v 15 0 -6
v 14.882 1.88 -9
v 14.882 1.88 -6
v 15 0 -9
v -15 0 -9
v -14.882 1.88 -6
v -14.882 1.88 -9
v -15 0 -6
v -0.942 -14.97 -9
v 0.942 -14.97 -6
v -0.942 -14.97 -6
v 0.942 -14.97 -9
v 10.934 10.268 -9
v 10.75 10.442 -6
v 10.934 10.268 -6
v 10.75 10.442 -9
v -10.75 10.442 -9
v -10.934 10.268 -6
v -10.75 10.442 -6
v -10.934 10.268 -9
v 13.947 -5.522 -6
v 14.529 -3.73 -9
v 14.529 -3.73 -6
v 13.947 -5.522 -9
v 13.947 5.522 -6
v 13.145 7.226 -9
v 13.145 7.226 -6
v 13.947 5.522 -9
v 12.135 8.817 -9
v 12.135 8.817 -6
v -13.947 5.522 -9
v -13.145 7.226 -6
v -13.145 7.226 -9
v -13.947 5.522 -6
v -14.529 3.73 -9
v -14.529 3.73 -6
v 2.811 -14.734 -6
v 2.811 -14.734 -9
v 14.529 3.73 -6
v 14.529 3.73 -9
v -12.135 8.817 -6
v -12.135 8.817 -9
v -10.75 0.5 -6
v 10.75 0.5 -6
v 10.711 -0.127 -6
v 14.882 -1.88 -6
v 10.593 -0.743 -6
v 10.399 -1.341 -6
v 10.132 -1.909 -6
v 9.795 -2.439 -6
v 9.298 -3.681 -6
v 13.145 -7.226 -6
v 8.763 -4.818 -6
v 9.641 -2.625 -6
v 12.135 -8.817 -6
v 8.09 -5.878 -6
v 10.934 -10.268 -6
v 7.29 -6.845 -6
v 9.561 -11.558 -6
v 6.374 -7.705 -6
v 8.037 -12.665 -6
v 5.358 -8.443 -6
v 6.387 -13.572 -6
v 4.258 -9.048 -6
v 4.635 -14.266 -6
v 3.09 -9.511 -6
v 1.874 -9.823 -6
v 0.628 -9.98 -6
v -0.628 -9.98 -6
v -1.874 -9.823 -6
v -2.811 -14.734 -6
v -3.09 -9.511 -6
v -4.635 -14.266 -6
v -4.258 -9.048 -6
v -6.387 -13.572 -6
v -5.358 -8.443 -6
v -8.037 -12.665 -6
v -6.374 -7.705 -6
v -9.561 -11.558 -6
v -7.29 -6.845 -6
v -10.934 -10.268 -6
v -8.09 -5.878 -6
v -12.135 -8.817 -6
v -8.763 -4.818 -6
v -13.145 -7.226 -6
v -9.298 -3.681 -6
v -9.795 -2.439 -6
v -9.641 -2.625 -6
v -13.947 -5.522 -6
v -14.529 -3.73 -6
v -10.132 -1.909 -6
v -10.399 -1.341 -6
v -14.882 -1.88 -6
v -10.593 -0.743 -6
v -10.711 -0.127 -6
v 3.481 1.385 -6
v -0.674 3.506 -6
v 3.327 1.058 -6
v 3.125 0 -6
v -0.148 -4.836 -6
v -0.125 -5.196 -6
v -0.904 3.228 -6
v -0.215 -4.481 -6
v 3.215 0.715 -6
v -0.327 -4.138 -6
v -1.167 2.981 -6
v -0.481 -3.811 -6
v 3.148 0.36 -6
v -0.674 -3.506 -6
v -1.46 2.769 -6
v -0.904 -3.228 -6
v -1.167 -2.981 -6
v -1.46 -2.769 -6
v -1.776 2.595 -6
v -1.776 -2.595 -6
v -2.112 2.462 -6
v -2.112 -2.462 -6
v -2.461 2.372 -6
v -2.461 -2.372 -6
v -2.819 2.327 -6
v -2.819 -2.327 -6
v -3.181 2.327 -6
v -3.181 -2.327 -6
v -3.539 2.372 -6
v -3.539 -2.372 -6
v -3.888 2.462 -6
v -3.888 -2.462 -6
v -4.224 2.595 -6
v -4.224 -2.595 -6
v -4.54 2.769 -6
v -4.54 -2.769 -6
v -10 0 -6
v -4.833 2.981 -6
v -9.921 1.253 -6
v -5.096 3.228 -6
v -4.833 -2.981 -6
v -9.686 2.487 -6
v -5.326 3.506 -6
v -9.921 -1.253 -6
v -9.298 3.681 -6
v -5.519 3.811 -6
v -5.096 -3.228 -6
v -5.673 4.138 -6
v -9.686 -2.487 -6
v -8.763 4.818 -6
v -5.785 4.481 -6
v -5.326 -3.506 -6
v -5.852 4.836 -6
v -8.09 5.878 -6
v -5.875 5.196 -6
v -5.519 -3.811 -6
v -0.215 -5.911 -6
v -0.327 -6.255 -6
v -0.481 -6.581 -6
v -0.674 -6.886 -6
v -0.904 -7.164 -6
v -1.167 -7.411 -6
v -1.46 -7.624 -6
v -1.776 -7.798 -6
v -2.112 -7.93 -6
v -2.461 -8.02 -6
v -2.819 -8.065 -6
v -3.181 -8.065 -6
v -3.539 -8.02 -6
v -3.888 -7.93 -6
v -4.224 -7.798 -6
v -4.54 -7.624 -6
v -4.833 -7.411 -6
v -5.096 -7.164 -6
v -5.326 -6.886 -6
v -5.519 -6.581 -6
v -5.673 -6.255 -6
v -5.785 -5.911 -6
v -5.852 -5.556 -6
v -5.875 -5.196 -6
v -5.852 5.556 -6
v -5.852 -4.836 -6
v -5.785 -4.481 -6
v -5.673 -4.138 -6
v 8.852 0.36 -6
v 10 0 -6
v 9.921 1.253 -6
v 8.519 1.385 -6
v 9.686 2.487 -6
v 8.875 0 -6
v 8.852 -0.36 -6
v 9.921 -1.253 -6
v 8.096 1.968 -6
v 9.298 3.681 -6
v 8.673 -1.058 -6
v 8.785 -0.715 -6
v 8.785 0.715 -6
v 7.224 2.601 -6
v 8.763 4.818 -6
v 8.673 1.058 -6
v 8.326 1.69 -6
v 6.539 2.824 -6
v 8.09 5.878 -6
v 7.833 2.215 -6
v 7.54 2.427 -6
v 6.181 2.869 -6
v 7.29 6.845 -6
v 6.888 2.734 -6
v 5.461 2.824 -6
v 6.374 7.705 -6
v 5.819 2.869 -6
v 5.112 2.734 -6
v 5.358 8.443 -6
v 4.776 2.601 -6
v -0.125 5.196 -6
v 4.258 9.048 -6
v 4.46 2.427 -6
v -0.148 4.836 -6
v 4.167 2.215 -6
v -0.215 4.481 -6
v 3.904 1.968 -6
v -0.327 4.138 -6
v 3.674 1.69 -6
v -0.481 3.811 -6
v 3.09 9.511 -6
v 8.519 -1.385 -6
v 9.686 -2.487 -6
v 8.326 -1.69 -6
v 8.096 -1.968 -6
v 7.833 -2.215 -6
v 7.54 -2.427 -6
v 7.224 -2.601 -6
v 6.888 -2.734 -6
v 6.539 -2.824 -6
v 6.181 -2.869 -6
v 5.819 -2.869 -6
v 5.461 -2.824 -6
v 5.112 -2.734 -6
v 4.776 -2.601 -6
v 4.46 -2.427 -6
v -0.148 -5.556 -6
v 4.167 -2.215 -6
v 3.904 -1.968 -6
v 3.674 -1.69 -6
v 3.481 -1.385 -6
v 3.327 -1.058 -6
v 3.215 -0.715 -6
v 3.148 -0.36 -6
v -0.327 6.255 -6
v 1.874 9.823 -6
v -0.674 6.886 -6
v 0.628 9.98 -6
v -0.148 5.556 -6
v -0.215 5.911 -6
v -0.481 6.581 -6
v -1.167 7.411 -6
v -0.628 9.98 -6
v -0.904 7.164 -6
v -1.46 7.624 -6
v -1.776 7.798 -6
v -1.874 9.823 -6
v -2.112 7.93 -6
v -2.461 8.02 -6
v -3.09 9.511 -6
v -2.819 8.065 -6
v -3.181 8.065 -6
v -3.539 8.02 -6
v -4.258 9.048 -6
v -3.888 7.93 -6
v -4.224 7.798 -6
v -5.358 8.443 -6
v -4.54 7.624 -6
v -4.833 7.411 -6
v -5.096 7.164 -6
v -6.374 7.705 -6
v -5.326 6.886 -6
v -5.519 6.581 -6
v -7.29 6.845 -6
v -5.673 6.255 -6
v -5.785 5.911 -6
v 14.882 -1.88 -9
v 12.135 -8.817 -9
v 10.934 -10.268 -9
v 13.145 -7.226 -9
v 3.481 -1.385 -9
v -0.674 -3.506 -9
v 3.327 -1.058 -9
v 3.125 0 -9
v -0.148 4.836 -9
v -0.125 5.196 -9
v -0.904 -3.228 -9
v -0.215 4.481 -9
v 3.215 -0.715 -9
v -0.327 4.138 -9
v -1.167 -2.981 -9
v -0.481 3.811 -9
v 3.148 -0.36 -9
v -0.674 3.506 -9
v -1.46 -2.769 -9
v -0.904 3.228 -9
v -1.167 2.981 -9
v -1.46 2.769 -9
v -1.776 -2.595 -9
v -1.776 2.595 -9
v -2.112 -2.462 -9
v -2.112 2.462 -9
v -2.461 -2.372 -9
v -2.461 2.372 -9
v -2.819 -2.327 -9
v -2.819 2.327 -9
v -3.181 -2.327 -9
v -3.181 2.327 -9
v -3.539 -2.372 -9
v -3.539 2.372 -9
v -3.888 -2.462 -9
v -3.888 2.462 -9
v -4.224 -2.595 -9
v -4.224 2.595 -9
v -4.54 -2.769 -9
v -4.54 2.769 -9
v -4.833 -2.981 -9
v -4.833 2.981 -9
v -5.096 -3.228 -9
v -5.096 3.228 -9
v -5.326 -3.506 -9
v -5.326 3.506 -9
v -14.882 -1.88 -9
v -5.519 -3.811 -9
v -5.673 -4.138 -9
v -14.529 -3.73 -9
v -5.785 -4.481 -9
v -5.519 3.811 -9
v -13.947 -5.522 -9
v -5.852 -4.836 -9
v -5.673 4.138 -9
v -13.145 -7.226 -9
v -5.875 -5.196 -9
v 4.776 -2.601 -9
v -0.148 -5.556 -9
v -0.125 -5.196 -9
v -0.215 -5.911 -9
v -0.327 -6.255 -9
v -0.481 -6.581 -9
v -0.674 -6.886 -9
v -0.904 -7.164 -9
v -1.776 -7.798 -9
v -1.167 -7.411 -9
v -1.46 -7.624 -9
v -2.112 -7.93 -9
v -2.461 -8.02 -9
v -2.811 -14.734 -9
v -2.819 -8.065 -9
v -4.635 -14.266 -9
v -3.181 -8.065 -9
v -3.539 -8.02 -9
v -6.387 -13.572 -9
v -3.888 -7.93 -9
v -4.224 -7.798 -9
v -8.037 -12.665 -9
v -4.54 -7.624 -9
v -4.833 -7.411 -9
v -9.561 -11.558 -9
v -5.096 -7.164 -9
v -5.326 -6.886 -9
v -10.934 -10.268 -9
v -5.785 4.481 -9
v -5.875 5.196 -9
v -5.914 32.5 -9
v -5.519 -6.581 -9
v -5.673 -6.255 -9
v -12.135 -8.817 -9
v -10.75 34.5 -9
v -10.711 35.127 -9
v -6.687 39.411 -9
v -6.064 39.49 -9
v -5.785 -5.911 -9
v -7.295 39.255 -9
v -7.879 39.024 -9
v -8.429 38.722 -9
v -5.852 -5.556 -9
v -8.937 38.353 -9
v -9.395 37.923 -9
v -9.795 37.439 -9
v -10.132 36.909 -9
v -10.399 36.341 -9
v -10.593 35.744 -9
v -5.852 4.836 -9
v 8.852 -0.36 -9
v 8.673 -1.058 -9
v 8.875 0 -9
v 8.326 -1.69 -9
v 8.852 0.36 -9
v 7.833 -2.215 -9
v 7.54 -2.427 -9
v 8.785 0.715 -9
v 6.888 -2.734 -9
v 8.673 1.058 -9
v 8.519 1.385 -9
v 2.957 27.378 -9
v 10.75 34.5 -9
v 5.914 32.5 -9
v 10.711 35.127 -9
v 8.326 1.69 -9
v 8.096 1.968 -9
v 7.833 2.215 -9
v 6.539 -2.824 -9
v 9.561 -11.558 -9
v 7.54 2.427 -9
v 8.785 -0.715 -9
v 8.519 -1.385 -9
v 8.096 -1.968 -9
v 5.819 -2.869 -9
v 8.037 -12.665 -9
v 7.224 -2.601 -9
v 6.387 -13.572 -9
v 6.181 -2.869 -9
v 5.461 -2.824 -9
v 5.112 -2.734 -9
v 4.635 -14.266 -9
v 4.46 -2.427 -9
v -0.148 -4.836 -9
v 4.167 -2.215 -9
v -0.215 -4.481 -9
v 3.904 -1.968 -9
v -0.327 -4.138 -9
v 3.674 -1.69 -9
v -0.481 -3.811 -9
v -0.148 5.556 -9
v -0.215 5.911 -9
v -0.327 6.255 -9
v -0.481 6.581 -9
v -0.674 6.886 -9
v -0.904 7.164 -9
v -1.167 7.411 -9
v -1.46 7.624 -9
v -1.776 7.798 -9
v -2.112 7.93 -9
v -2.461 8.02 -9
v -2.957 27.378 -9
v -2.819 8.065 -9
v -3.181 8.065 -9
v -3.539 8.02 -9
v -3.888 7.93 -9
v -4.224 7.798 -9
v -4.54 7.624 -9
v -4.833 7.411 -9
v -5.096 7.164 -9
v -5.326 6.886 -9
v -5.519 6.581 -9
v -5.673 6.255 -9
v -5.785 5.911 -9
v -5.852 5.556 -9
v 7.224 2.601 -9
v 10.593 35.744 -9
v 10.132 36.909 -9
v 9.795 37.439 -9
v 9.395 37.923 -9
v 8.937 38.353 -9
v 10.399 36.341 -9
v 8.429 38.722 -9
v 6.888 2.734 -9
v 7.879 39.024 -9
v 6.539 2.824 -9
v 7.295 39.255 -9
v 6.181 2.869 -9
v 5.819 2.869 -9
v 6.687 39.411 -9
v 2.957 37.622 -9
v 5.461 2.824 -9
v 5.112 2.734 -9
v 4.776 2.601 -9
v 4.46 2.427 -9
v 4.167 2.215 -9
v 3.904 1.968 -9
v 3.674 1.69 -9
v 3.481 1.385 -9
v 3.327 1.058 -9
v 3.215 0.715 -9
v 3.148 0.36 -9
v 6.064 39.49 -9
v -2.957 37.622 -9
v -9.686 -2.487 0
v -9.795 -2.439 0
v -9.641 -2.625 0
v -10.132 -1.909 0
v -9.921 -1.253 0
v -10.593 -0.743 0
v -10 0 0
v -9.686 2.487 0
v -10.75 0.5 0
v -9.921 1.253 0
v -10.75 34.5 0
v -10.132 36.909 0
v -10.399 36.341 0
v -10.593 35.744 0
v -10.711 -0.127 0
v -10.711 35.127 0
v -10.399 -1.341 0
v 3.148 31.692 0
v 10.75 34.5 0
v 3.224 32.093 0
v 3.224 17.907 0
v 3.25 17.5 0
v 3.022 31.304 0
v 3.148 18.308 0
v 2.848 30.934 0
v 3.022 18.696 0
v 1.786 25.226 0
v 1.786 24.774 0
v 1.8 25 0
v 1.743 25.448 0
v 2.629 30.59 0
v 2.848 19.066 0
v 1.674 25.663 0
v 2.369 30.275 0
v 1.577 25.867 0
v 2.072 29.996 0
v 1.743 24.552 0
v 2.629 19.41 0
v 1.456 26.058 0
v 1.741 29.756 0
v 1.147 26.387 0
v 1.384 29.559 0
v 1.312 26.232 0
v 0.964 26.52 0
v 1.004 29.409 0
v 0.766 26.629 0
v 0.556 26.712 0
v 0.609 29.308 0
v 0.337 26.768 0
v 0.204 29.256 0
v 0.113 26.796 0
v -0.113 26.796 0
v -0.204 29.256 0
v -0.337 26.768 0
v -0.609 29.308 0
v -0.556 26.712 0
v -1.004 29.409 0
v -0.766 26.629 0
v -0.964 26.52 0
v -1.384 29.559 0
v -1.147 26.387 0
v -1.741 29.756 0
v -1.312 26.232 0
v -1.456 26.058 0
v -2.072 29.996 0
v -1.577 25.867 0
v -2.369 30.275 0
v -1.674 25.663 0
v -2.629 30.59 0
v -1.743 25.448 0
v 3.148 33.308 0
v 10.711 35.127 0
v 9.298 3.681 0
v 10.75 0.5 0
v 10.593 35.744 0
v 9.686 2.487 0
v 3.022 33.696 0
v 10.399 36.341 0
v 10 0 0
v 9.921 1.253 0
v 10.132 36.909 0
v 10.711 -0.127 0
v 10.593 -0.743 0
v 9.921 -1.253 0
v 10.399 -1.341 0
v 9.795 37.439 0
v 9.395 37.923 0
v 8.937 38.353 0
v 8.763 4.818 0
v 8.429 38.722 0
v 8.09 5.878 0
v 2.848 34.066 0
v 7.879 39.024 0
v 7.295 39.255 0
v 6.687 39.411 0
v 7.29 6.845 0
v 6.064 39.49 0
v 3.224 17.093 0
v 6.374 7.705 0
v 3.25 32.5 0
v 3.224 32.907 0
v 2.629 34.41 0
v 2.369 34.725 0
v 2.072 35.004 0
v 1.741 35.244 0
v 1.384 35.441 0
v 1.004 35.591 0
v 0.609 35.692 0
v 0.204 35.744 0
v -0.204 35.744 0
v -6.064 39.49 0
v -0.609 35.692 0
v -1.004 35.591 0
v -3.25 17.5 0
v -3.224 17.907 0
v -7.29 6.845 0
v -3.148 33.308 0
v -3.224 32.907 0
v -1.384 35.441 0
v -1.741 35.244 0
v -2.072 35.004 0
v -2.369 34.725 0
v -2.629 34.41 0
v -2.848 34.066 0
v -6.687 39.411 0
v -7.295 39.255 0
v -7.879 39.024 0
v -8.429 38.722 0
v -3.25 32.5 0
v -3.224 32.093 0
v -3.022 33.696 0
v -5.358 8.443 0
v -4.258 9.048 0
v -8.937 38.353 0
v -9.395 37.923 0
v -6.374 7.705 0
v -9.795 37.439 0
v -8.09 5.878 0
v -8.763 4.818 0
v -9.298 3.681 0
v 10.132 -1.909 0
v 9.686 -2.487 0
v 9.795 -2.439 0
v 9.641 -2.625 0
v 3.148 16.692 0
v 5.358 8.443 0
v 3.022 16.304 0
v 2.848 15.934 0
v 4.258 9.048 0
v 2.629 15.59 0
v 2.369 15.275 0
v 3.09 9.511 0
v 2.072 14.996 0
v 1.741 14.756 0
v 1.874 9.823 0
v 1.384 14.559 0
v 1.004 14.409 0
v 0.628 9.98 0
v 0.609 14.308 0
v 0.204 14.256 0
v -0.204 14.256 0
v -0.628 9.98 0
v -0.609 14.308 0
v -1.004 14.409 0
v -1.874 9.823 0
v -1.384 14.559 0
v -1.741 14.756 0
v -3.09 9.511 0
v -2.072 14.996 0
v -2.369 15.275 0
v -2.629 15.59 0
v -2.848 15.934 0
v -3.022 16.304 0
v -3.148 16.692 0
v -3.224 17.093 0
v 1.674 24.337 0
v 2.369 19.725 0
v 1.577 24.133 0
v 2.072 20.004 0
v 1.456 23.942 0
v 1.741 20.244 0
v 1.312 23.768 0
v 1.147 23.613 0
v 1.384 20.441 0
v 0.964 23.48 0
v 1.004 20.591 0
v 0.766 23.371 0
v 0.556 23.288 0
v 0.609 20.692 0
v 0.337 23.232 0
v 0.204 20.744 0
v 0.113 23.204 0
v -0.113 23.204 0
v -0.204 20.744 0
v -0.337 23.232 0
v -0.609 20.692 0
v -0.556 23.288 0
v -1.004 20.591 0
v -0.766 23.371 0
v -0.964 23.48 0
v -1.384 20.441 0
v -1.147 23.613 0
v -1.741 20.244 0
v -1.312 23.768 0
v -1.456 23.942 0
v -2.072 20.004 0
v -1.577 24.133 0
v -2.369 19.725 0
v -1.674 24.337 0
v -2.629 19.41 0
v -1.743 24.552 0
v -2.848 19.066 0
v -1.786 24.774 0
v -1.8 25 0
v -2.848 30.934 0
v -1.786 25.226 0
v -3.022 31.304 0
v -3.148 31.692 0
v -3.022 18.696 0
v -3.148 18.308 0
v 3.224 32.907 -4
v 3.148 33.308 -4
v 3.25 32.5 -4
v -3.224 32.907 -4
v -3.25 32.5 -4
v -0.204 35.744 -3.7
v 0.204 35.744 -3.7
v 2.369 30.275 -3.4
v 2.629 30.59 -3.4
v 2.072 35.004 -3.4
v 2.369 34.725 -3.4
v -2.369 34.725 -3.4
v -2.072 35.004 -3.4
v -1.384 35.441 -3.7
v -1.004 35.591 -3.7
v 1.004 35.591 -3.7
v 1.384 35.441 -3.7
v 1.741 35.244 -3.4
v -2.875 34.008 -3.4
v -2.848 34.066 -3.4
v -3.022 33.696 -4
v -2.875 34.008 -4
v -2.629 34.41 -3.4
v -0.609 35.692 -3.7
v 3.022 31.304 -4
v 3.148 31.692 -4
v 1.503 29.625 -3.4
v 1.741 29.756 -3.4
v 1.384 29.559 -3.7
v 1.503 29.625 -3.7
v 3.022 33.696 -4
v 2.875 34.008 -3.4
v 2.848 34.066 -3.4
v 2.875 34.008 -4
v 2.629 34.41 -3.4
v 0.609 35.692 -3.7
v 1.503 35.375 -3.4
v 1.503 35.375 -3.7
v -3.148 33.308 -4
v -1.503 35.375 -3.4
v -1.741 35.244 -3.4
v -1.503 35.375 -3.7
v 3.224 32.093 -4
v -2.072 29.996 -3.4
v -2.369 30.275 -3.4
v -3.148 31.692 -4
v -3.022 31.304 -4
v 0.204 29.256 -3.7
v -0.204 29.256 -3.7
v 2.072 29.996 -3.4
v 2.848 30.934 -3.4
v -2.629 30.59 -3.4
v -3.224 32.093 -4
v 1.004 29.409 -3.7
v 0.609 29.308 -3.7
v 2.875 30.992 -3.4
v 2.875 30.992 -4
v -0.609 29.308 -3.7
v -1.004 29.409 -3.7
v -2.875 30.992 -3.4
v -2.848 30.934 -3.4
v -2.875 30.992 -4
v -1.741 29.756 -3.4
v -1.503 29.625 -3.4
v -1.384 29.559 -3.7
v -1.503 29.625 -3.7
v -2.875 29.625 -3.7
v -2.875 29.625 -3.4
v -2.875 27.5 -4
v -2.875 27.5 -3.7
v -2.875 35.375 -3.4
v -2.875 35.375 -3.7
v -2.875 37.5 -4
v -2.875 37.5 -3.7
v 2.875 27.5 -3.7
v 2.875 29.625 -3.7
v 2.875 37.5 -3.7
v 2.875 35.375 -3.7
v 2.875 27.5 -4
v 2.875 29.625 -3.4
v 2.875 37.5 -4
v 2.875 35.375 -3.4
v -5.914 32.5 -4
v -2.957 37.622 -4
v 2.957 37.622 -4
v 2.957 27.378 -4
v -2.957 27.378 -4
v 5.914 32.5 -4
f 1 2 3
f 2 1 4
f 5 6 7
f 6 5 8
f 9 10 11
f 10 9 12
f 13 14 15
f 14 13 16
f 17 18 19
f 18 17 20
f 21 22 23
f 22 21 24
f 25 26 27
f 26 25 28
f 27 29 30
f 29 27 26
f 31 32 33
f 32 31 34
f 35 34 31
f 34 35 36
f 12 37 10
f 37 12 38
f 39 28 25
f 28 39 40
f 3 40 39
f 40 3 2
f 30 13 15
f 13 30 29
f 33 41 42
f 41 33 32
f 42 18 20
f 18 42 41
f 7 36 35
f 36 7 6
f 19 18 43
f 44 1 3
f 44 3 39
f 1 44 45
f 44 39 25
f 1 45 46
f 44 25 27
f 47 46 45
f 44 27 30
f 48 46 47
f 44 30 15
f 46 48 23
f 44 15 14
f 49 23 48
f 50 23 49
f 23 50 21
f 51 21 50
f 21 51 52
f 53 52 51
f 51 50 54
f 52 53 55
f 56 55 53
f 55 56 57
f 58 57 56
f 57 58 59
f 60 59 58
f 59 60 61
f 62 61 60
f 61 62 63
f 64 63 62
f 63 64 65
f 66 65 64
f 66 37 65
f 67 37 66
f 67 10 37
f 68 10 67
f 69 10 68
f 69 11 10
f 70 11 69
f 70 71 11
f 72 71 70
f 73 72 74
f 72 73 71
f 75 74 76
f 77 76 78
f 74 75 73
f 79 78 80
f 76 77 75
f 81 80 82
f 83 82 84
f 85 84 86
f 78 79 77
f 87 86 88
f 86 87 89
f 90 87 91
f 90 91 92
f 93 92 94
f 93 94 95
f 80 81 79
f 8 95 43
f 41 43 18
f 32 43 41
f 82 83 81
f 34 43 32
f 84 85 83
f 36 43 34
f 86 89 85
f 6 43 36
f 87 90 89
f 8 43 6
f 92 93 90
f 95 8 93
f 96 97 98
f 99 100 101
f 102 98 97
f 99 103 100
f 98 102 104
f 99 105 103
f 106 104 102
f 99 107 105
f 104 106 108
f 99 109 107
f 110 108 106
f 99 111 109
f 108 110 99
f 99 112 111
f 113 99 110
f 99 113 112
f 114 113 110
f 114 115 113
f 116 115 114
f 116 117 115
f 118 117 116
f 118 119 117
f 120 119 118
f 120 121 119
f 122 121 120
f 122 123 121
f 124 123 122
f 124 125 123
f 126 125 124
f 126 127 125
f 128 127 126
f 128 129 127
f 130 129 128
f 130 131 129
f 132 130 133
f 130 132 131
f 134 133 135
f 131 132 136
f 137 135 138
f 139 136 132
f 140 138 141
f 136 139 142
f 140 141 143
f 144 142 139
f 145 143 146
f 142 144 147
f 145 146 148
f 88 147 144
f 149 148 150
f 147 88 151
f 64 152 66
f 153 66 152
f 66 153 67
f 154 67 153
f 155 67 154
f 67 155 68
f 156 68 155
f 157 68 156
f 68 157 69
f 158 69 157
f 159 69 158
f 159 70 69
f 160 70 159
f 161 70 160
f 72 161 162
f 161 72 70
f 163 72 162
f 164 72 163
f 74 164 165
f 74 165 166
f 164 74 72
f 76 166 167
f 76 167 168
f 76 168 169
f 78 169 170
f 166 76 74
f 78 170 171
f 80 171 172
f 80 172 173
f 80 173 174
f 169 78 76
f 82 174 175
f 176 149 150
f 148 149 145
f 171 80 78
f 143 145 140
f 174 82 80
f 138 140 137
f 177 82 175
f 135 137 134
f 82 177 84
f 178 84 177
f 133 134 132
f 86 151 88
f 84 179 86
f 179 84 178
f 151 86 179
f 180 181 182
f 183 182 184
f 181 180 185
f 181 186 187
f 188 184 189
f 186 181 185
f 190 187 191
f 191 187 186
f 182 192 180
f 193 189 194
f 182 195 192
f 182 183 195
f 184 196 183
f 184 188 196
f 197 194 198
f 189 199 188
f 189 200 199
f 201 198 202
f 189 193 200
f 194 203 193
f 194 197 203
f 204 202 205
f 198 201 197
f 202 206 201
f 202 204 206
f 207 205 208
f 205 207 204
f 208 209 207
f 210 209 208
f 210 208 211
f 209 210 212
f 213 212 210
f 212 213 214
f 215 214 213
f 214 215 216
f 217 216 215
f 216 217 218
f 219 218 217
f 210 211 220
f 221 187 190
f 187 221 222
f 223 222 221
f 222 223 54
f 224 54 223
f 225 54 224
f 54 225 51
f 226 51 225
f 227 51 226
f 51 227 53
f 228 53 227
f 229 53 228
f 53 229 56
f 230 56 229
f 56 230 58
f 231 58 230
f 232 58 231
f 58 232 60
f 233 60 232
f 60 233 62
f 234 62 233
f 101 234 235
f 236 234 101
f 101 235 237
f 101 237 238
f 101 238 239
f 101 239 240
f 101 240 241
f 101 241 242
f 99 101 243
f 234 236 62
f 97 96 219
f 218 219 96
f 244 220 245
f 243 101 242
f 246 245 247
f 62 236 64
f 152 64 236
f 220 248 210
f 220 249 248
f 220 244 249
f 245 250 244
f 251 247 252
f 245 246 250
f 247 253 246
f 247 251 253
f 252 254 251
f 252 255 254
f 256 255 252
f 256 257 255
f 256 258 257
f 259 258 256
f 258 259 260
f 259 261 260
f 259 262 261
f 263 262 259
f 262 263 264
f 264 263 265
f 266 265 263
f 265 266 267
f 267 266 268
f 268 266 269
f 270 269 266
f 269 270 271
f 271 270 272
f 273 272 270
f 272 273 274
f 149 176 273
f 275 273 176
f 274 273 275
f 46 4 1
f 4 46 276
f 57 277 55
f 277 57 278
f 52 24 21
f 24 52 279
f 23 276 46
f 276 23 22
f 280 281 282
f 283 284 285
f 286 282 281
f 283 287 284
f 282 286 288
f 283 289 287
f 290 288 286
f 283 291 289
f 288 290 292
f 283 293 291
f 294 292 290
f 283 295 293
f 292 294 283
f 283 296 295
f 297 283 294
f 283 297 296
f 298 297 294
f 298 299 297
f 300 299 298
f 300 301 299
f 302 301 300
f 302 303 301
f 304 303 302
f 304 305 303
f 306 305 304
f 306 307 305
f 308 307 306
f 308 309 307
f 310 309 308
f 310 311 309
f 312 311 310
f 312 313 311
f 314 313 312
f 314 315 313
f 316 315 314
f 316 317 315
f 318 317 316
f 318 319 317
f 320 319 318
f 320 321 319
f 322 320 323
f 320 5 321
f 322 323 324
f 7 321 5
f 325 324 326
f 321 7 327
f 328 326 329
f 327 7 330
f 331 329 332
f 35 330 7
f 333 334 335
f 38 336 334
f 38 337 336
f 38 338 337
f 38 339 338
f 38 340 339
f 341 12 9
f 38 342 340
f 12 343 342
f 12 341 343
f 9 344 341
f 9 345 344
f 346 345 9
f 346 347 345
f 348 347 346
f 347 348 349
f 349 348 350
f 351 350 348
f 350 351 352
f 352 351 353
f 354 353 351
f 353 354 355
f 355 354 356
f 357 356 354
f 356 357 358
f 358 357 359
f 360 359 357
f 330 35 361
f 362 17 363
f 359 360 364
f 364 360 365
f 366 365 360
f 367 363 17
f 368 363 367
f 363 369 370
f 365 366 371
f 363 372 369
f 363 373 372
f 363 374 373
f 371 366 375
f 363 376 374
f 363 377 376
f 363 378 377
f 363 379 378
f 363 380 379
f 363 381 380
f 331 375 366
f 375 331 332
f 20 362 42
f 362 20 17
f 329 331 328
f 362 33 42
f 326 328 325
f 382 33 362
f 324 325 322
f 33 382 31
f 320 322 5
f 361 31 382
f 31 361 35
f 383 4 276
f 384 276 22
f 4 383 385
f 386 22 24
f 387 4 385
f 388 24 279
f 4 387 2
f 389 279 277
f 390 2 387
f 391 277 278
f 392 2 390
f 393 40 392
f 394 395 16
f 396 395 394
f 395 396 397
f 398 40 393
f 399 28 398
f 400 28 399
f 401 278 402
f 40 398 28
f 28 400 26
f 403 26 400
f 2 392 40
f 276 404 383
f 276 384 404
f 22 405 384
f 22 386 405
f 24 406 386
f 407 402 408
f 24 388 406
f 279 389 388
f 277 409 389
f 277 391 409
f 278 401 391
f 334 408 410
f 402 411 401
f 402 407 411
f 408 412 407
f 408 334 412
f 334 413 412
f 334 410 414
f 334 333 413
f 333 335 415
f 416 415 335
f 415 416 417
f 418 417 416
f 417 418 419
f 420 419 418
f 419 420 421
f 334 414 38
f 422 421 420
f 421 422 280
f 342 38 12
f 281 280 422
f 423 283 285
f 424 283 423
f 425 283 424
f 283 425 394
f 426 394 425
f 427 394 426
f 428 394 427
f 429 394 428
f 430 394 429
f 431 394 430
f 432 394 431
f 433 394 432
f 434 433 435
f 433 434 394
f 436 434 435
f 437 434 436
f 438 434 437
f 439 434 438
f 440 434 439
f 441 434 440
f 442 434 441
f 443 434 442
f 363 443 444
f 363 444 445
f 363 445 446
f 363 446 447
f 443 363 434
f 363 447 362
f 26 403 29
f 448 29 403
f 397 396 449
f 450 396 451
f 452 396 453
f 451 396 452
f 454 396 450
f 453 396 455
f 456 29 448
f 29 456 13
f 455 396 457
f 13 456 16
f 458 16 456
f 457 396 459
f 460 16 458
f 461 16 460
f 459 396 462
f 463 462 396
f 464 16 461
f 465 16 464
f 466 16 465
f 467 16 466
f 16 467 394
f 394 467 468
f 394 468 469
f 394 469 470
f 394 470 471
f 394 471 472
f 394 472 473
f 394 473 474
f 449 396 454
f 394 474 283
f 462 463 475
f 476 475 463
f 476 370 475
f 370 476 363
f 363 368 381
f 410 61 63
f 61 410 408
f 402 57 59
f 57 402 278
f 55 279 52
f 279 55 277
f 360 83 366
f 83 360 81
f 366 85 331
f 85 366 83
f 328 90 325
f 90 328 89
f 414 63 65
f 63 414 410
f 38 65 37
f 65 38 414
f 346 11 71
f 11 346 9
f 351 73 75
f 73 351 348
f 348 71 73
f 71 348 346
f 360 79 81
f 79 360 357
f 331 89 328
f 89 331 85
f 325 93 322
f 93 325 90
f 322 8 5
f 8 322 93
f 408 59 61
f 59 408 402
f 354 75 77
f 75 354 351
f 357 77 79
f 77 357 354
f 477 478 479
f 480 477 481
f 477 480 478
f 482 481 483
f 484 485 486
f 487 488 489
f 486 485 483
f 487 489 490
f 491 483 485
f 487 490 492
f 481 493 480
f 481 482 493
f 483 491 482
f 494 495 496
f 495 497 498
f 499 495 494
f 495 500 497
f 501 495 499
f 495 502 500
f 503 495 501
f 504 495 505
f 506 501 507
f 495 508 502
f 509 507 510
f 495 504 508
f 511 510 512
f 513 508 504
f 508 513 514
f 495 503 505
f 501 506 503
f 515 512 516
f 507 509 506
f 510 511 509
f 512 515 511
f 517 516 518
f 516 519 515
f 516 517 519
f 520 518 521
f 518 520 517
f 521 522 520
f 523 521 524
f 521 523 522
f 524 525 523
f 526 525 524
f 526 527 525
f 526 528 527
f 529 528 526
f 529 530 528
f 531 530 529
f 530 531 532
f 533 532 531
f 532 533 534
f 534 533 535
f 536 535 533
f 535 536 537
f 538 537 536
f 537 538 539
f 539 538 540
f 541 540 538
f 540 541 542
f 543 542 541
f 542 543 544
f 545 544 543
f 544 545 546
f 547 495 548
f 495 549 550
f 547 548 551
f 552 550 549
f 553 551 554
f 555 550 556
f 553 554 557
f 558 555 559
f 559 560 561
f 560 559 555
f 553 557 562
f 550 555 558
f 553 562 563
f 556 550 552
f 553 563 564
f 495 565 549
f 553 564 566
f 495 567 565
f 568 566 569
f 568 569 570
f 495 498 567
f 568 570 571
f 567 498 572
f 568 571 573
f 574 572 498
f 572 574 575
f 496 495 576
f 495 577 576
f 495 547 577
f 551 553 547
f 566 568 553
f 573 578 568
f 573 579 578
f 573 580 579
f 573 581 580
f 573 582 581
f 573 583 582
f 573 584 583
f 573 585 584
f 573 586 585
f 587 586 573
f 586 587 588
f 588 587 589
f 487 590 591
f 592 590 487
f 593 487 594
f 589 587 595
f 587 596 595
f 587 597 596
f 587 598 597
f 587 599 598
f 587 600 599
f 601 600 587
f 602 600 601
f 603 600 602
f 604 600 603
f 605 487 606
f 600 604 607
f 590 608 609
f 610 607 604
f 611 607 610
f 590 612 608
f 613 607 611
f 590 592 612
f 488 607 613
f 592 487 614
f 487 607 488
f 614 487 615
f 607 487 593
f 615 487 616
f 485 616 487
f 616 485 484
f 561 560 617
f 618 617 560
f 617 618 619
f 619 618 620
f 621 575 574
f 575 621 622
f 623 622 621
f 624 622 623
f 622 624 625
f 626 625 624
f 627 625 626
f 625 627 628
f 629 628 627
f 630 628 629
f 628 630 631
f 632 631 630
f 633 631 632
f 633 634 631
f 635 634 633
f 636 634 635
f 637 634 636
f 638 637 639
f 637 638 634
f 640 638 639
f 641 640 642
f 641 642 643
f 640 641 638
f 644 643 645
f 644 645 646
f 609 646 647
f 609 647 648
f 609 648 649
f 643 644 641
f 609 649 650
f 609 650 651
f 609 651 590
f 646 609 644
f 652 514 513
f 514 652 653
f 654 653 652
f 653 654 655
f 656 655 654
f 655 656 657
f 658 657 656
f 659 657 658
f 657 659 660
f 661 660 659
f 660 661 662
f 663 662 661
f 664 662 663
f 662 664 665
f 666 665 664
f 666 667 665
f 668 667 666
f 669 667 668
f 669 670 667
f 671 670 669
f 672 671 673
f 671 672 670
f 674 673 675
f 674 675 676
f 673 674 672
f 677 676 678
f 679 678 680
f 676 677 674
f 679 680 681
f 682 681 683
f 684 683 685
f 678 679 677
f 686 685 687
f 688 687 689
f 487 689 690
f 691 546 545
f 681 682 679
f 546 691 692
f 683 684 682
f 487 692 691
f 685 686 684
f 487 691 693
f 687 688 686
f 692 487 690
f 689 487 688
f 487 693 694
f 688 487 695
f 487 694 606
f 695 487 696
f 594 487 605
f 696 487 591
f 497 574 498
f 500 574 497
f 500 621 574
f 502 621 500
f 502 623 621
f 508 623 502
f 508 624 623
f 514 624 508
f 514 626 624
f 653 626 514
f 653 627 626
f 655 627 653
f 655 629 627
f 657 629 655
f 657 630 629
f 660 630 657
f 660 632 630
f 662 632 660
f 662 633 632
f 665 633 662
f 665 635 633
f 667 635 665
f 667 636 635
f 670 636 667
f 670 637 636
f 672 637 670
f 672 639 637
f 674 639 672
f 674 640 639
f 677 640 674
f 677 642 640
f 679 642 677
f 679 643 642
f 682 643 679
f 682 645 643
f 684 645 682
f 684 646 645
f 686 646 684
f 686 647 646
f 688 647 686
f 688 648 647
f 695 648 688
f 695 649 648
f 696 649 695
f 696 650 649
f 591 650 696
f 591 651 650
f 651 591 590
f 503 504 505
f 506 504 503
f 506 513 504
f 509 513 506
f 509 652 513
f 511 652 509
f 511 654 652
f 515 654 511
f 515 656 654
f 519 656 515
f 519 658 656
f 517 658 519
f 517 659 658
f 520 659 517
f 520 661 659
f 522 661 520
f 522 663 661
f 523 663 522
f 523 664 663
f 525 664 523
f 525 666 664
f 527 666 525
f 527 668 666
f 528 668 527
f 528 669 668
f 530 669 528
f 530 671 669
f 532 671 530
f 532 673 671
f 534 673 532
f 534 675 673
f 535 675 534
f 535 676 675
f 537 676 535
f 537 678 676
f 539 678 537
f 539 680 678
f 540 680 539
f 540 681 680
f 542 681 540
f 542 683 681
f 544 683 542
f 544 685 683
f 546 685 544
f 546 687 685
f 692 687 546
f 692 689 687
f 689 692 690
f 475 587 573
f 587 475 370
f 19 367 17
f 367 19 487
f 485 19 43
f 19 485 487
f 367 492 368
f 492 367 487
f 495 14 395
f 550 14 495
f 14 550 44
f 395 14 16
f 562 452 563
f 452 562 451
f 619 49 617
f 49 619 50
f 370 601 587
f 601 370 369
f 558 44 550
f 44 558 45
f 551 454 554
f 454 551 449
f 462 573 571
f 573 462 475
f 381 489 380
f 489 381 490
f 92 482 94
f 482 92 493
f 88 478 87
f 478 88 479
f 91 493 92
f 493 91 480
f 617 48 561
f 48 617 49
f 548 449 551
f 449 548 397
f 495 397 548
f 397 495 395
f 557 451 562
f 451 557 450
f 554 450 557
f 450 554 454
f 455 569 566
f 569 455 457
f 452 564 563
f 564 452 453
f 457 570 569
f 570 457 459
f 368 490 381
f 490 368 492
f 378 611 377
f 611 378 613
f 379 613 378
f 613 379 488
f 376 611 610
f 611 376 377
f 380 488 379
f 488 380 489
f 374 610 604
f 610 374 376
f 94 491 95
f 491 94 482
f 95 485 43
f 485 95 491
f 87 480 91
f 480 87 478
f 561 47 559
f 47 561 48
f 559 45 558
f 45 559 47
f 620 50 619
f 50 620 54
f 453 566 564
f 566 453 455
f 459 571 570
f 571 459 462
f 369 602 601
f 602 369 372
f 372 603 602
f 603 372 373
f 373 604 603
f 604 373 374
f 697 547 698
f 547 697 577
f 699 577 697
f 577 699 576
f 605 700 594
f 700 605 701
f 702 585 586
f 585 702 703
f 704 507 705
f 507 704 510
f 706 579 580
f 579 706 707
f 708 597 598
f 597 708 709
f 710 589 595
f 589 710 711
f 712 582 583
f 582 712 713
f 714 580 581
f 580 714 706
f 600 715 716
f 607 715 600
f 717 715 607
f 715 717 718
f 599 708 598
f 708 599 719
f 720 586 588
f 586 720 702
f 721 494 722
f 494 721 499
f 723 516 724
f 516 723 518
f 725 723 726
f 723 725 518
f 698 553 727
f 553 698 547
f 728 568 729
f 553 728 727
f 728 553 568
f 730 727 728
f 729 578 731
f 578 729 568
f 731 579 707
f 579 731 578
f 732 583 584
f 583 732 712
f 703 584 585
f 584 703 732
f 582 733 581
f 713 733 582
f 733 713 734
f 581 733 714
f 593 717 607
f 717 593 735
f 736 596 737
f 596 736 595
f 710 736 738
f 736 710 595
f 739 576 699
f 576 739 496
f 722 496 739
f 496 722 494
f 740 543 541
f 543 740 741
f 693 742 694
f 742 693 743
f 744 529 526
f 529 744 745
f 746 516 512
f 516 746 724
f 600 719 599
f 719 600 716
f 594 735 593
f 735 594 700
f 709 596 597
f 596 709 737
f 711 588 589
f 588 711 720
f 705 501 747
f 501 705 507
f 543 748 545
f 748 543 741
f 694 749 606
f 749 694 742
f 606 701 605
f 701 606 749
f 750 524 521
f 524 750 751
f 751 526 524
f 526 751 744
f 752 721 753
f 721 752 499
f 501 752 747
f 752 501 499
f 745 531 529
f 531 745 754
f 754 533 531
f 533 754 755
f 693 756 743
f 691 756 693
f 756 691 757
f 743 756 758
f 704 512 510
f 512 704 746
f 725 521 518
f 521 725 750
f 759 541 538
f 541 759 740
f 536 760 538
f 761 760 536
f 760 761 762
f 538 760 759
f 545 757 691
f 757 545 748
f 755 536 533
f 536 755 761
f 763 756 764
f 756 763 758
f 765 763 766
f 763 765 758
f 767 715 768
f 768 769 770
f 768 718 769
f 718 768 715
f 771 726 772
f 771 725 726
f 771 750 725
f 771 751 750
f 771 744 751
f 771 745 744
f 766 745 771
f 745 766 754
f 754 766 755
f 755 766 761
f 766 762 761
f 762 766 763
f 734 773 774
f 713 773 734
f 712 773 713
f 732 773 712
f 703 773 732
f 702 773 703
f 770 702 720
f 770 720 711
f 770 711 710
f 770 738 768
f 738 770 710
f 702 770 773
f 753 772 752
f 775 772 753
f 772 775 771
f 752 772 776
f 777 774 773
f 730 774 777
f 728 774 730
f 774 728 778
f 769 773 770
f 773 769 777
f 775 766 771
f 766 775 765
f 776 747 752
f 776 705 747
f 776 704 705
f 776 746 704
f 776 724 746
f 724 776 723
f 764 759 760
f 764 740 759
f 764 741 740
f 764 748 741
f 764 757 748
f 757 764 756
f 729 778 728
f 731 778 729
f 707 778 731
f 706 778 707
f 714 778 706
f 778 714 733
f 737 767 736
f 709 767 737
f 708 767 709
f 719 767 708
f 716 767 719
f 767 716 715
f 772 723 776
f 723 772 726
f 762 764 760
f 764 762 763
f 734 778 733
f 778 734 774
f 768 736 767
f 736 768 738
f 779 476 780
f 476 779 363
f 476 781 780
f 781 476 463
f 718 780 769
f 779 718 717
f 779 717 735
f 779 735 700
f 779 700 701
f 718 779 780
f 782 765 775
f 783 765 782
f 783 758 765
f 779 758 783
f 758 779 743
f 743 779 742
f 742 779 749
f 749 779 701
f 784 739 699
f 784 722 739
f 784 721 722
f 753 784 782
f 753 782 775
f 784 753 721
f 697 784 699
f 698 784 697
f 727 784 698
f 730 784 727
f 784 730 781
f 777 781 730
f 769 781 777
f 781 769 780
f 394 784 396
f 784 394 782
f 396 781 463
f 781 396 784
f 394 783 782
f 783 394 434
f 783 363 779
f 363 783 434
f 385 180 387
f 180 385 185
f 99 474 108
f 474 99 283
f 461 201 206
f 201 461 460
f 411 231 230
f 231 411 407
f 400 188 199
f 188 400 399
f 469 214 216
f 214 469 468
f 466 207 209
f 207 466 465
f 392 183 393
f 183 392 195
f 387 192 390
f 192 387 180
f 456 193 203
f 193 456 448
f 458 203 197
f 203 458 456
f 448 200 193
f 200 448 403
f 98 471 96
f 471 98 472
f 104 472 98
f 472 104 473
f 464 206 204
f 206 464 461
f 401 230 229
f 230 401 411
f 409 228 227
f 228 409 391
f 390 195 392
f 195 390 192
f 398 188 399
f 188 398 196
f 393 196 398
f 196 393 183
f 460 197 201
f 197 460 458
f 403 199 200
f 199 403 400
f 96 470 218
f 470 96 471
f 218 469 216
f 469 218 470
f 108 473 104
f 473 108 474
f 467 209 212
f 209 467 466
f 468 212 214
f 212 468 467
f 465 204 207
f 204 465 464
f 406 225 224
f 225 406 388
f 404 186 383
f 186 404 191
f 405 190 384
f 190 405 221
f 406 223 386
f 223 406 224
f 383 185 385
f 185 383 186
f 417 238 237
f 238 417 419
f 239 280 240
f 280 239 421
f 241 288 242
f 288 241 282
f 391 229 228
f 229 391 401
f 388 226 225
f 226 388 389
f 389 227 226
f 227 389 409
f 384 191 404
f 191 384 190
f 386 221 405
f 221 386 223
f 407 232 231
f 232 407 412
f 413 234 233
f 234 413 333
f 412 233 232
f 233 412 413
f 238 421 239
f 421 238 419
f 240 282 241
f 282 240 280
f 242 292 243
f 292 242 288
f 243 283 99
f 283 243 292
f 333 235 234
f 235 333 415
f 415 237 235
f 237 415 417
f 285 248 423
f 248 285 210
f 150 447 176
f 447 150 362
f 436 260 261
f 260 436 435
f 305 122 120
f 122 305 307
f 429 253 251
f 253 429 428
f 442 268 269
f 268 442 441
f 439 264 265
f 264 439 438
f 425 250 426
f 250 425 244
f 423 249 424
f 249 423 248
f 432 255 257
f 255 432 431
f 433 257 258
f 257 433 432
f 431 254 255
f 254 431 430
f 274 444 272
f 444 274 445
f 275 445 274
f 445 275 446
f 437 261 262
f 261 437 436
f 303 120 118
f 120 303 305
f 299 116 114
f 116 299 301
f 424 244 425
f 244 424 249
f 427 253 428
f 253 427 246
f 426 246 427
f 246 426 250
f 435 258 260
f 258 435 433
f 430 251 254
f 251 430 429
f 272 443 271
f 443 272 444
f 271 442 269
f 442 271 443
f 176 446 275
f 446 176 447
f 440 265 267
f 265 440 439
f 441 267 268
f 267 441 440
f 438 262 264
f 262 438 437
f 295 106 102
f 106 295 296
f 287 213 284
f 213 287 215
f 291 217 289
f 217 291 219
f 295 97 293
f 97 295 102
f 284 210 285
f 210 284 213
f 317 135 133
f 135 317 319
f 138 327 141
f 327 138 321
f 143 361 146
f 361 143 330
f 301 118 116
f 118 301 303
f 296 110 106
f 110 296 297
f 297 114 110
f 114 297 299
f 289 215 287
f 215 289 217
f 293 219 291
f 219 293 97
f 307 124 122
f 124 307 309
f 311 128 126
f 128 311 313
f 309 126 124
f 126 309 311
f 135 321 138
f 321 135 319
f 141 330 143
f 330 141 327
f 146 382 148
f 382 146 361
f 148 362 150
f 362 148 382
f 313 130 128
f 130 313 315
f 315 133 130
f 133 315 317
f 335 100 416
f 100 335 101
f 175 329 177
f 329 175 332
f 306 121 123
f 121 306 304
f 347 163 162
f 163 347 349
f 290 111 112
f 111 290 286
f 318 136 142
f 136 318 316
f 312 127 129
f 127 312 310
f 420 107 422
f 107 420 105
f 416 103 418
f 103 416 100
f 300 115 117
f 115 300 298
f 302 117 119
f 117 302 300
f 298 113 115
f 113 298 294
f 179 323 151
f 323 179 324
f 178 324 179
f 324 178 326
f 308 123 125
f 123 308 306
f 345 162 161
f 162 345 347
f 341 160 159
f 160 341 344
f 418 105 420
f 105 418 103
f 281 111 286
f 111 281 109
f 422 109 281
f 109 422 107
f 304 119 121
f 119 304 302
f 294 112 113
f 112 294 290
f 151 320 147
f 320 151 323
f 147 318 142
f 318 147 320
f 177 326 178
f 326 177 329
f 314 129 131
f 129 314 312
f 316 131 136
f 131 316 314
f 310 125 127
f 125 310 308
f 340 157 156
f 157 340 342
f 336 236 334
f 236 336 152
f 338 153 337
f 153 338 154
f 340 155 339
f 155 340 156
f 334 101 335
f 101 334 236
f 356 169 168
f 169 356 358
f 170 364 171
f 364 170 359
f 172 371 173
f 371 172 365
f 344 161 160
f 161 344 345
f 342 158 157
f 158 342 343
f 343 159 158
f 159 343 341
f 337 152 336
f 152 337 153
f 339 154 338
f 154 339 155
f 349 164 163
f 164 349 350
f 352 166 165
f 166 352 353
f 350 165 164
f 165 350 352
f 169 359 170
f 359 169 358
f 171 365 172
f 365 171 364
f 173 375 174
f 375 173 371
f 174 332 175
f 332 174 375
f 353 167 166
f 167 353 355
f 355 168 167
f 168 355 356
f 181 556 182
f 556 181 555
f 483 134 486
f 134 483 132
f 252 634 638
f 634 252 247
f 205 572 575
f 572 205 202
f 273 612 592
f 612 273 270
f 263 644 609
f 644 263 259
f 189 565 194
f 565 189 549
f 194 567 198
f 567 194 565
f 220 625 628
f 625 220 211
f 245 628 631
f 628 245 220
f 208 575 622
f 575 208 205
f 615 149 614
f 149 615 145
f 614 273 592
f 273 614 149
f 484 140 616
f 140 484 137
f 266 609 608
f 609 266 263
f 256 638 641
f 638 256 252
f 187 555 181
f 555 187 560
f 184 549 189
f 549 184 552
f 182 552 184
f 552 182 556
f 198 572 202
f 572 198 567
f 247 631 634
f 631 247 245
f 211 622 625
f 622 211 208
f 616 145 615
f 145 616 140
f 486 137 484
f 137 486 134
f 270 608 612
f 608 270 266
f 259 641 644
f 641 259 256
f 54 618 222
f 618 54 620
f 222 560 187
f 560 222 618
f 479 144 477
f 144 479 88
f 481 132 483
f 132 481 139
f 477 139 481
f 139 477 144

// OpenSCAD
$fn = 50;


difference() {
	union() {
		translate(v = [0, 0, -9.0000000000]) {
			cylinder(h = 3, r = 15.0000000000);
		}
		translate(v = [0, 17.5000000000, -9]) {
			hull() {
				translate(v = [-2.0000000000, 17.0000000000, 0]) {
					cylinder(h = 9, r = 5);
				}
				translate(v = [2.0000000000, 17.0000000000, 0]) {
					cylinder(h = 9, r = 5);
				}
				translate(v = [-2.0000000000, -17.0000000000, 0]) {
					cylinder(h = 9, r = 5);
				}
				translate(v = [2.0000000000, -17.0000000000, 0]) {
					cylinder(h = 9, r = 5);
				}
			}
		}
		translate(v = [0, 17.5000000000, -9]) {
			hull() {
				translate(v = [-5.7500000000, 17.0000000000, 0]) {
					cylinder(h = 9, r = 5);
				}
				translate(v = [5.7500000000, 17.0000000000, 0]) {
					cylinder(h = 9, r = 5);
				}
				translate(v = [-5.7500000000, -17.0000000000, 0]) {
					cylinder(h = 9, r = 5);
				}
				translate(v = [5.7500000000, -17.0000000000, 0]) {
					cylinder(h = 9, r = 5);
				}
			}
		}
	}
	union() {
		translate(v = [0, 32.5000000000, 0]) {
			rotate(a = [0, 0, 0]) {
				difference() {
					union() {
						translate(v = [0, 0, -50.0000000000]) {
							cylinder(h = 100, r = 3.2500000000);
						}
					}
					union();
				}
			}
		}
		translate(v = [0, 32.5000000000, -9]) {
			rotate(a = [0, 0, 0]) {
				difference() {
					union() {
						translate(v = [-2.8750000000, -5.0000000000, -0.3000000000]) {
							cube(size = [5.7500000000, 10, 0.3000000000]);
						}
						translate(v = [-2.8750000000, -2.8750000000, -0.6000000000]) {
							cube(size = [5.7500000000, 5.7500000000, 0.3000000000]);
						}
						translate(v = [-2.8750000000, -5.0000000000, 5]) {
							cube(size = [5.7500000000, 10, 0.3000000000]);
						}
						translate(v = [-2.8750000000, -2.8750000000, 5.3000000000]) {
							cube(size = [5.7500000000, 5.7500000000, 0.3000000000]);
						}
						linear_extrude(height = 5) {
							polygon(points = [[5.9142500000, 0.0000000000], [2.9571250000, 5.1218907443], [-2.9571250000, 5.1218907443], [-5.9142500000, 0.0000000000], [-2.9571250000, -5.1218907443], [2.9571250000, -5.1218907443]]);
						}
						translate(v = [-2.8750000000, -5.0000000000, -0.3000000000]) {
							cube(size = [5.7500000000, 10, 0.3000000000]);
						}
						translate(v = [-2.8750000000, -2.8750000000, -0.6000000000]) {
							cube(size = [5.7500000000, 5.7500000000, 0.3000000000]);
						}
						translate(v = [-2.8750000000, -5.0000000000, 5]) {
							cube(size = [5.7500000000, 10, 0.3000000000]);
						}
						translate(v = [-2.8750000000, -2.8750000000, 5.3000000000]) {
							cube(size = [5.7500000000, 5.7500000000, 0.3000000000]);
						}
						translate(v = [-2.8750000000, -5.0000000000, -0.3000000000]) {
							cube(size = [5.7500000000, 10, 0.3000000000]);
						}
						translate(v = [-2.8750000000, -2.8750000000, -0.6000000000]) {
							cube(size = [5.7500000000, 5.7500000000, 0.3000000000]);
						}
						translate(v = [-2.8750000000, -5.0000000000, 5]) {
							cube(size = [5.7500000000, 10, 0.3000000000]);
						}
						translate(v = [-2.8750000000, -2.8750000000, 5.3000000000]) {
							cube(size = [5.7500000000, 5.7500000000, 0.3000000000]);
						}
					}
					union();
				}
			}
		}
		translate(v = [6.0000000000, 0.0000000000, 41]) {
			rotate(a = [0, 0, 0]) {
				difference() {
					union() {
						translate(v = [0, 0, -59.0000000000]) {
							cylinder(h = 59, r = 2.6000000000);
						}
						translate(v = [0, 0, -3.9000000000]) {
							cylinder(h = 3.9000000000, r1 = 2.8750000000, r2 = 5.4000000000);
						}
						translate(v = [0, 0, -59.0000000000]) {
							cylinder(h = 59, r = 2.8750000000);
						}
						translate(v = [0, 0, -59.0000000000]) {
							cylinder(h = 59, r = 2.6000000000);
						}
					}
					union();
				}
			}
		}
		translate(v = [-3.0000000000, 5.1961524227, 41]) {
			rotate(a = [0, 0, 0]) {
				difference() {
					union() {
						translate(v = [0, 0, -59.0000000000]) {
							cylinder(h = 59, r = 2.6000000000);
						}
						translate(v = [0, 0, -3.9000000000]) {
							cylinder(h = 3.9000000000, r1 = 2.8750000000, r2 = 5.4000000000);
						}
						translate(v = [0, 0, -59.0000000000]) {
							cylinder(h = 59, r = 2.8750000000);
						}
						translate(v = [0, 0, -59.0000000000]) {
							cylinder(h = 59, r = 2.6000000000);
						}
					}
					union();
				}
			}
		}
		translate(v = [-3.0000000000, -5.1961524227, 41]) {
			rotate(a = [0, 0, 0]) {
				difference() {
					union() {
						translate(v = [0, 0, -59.0000000000]) {
							cylinder(h = 59, r = 2.6000000000);
						}
						translate(v = [0, 0, -3.9000000000]) {
							cylinder(h = 3.9000000000, r1 = 2.8750000000, r2 = 5.4000000000);
						}
						translate(v = [0, 0, -59.0000000000]) {
							cylinder(h = 59, r = 2.8750000000);
						}
						translate(v = [0, 0, -59.0000000000]) {
							cylinder(h = 59, r = 2.6000000000);
						}
					}
					union();
				}
			}
		}
		translate(v = [0, 0, -6.0000000000]) {
			cylinder(h = 100, r = 10.0000000000);
		}
		translate(v = [0.0000000000, 32.5000000000, 0]) {
			cylinder(h = 9, r = 3.2500000000);
		}
		translate(v = [0.0000000000, 17.5000000000, 0]) {
			cylinder(h = 9, r = 3.2500000000);
		}
		translate(v = [0.0000000000, 25.0000000000, 0]) {
			cylinder(h = 9, r = 1.8000000000);
		}
	}
}
